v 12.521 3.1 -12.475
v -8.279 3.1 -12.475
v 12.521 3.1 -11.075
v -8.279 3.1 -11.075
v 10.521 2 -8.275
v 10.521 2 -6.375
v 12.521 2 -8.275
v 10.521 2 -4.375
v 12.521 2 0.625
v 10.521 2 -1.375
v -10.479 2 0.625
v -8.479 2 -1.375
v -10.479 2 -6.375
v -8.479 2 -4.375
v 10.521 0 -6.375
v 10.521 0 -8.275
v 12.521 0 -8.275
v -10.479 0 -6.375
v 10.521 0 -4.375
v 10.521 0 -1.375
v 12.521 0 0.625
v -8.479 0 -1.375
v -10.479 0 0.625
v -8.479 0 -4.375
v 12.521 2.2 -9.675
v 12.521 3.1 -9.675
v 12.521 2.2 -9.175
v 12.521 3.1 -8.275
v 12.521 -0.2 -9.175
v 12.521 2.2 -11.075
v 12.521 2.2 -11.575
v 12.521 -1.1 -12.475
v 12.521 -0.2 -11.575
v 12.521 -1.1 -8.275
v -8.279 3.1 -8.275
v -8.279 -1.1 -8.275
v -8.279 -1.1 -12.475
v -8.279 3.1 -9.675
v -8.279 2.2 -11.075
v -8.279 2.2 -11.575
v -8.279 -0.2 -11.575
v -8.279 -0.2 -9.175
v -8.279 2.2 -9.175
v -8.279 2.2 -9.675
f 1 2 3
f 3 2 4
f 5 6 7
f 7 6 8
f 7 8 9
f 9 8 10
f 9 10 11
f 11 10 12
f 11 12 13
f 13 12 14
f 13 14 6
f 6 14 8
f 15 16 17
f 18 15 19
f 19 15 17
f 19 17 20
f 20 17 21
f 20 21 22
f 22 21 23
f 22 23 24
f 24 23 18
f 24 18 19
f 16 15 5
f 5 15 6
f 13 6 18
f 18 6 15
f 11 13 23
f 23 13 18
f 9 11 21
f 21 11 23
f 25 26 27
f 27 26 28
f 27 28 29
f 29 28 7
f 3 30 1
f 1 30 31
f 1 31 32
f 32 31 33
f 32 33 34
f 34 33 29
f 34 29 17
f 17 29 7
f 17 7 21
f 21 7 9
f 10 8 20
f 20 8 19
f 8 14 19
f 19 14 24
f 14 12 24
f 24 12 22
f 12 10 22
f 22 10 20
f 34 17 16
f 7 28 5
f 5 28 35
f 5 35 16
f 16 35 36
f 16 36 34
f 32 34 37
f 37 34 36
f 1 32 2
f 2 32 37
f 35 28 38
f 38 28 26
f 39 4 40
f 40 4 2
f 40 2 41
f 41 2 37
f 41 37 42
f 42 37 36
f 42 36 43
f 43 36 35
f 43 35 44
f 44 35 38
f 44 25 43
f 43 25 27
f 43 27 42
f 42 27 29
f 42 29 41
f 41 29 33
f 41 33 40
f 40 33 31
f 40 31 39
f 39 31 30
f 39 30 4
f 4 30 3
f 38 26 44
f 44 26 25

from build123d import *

# Parameters (mm, degrees)
ESBO_O1_W                = 19
ESBO_O1_H                = 3
RESSALTO_EXTRUS_O1_DEPTH = 2
ESBO_O3_W                = 2.338389472
ESBO_O3_H                = 3.565642473
CORTE_EXTRUS_O2_DEPTH    = 3
ESBO_O4_W                = 4.2
ESBO_O4_H                = 4.2
ESBO_O4_W_2              = 2.2
ESBO_O4_H_2              = 2.2
RESSALTO_EXTRUS_O2_DEPTH = 21
ESBO_O5_W                = 2
ESBO_O5_H                = 2
CORTE_EXTRUS_O3_DEPTH    = 29
ESBO_O6_W                = 10.73629406
ESBO_O6_H                = 11.045994849
CORTE_EXTRUS_O4_DEPTH    = 4.5
CORTE_EXTRUS_O5_DEPTH    = 24


with BuildPart() as part:
    # Esboço1 → Ressalto-extrusão1 (new body)
    with BuildSketch(Plane(origin=(0, 0, 0), x_dir=(1, 0, 0), z_dir=(0, 1, 0))):
        Polygon((-10.479474548, 11.375), (12.520525452, 11.375), (12.520525452, -0.625), (10.520525452, -0.625), (-10.479474548, -0.625), (-10.479474548, 6.375), (10.520525452, 6.375), (10.520525452, 9.375), (-10.479474548, 9.375), align=None)
        with Locations((1.020525452, 2.875)):
            Rectangle(ESBO_O1_W, ESBO_O1_H, mode=Mode.SUBTRACT)
    extrude(amount=RESSALTO_EXTRUS_O1_DEPTH)

    # Esboço3 → Corte-extrusão2 (cut)
    with BuildSketch(Plane(origin=(0, 0, 0), x_dir=(1, 0, 0), z_dir=(0, 1, 0))):
        with Locations((-9.648669284, 10.261118249)):
            Rectangle(ESBO_O3_W, ESBO_O3_H)
    extrude(amount=CORTE_EXTRUS_O2_DEPTH, mode=Mode.SUBTRACT)

    # Esboço4 → Ressalto-extrusão2 (add)
    with BuildSketch(Plane.ZY.offset(8.479474548)):
        with Locations((-10.375, 1)):
            Rectangle(ESBO_O4_W, ESBO_O4_H)
        with Locations((-10.375, 1)):
            Rectangle(ESBO_O4_W_2, ESBO_O4_H_2, mode=Mode.SUBTRACT)
    extrude(amount=-RESSALTO_EXTRUS_O2_DEPTH)

    # Esboço5 → Corte-extrusão3 (cut)
    with BuildSketch(Plane.ZY.offset(8.479474548)):
        with Locations((-10.375, 1)):
            Rectangle(ESBO_O5_W, ESBO_O5_H)
    extrude(amount=-CORTE_EXTRUS_O3_DEPTH, mode=Mode.SUBTRACT)

    # Esboço6 → Corte-extrusão4 (cut, symmetric)
    with BuildSketch(Plane(origin=(0, 0, 0), x_dir=(1, 0, 0), z_dir=(0, 1, 0))):
        with Locations((-13.647621578, 13.152356314)):
            Rectangle(ESBO_O6_W, ESBO_O6_H)
    extrude(amount=CORTE_EXTRUS_O4_DEPTH, both=True, mode=Mode.SUBTRACT)

    # Esboço7 → Corte-extrusão5 (cut)
    with BuildSketch(Plane.ZY.offset(8.279474548)):
        Polygon((-11.075, 2.2), (-11.075, 3.370047827), (-9.675, 3.370047827), (-9.675, 2.2), (-9.175, 2.2), (-9.175, -0.2), (-11.575, -0.2), (-11.575, 2.2), align=None)
    extrude(amount=-CORTE_EXTRUS_O5_DEPTH, mode=Mode.SUBTRACT)


solid = part.part
